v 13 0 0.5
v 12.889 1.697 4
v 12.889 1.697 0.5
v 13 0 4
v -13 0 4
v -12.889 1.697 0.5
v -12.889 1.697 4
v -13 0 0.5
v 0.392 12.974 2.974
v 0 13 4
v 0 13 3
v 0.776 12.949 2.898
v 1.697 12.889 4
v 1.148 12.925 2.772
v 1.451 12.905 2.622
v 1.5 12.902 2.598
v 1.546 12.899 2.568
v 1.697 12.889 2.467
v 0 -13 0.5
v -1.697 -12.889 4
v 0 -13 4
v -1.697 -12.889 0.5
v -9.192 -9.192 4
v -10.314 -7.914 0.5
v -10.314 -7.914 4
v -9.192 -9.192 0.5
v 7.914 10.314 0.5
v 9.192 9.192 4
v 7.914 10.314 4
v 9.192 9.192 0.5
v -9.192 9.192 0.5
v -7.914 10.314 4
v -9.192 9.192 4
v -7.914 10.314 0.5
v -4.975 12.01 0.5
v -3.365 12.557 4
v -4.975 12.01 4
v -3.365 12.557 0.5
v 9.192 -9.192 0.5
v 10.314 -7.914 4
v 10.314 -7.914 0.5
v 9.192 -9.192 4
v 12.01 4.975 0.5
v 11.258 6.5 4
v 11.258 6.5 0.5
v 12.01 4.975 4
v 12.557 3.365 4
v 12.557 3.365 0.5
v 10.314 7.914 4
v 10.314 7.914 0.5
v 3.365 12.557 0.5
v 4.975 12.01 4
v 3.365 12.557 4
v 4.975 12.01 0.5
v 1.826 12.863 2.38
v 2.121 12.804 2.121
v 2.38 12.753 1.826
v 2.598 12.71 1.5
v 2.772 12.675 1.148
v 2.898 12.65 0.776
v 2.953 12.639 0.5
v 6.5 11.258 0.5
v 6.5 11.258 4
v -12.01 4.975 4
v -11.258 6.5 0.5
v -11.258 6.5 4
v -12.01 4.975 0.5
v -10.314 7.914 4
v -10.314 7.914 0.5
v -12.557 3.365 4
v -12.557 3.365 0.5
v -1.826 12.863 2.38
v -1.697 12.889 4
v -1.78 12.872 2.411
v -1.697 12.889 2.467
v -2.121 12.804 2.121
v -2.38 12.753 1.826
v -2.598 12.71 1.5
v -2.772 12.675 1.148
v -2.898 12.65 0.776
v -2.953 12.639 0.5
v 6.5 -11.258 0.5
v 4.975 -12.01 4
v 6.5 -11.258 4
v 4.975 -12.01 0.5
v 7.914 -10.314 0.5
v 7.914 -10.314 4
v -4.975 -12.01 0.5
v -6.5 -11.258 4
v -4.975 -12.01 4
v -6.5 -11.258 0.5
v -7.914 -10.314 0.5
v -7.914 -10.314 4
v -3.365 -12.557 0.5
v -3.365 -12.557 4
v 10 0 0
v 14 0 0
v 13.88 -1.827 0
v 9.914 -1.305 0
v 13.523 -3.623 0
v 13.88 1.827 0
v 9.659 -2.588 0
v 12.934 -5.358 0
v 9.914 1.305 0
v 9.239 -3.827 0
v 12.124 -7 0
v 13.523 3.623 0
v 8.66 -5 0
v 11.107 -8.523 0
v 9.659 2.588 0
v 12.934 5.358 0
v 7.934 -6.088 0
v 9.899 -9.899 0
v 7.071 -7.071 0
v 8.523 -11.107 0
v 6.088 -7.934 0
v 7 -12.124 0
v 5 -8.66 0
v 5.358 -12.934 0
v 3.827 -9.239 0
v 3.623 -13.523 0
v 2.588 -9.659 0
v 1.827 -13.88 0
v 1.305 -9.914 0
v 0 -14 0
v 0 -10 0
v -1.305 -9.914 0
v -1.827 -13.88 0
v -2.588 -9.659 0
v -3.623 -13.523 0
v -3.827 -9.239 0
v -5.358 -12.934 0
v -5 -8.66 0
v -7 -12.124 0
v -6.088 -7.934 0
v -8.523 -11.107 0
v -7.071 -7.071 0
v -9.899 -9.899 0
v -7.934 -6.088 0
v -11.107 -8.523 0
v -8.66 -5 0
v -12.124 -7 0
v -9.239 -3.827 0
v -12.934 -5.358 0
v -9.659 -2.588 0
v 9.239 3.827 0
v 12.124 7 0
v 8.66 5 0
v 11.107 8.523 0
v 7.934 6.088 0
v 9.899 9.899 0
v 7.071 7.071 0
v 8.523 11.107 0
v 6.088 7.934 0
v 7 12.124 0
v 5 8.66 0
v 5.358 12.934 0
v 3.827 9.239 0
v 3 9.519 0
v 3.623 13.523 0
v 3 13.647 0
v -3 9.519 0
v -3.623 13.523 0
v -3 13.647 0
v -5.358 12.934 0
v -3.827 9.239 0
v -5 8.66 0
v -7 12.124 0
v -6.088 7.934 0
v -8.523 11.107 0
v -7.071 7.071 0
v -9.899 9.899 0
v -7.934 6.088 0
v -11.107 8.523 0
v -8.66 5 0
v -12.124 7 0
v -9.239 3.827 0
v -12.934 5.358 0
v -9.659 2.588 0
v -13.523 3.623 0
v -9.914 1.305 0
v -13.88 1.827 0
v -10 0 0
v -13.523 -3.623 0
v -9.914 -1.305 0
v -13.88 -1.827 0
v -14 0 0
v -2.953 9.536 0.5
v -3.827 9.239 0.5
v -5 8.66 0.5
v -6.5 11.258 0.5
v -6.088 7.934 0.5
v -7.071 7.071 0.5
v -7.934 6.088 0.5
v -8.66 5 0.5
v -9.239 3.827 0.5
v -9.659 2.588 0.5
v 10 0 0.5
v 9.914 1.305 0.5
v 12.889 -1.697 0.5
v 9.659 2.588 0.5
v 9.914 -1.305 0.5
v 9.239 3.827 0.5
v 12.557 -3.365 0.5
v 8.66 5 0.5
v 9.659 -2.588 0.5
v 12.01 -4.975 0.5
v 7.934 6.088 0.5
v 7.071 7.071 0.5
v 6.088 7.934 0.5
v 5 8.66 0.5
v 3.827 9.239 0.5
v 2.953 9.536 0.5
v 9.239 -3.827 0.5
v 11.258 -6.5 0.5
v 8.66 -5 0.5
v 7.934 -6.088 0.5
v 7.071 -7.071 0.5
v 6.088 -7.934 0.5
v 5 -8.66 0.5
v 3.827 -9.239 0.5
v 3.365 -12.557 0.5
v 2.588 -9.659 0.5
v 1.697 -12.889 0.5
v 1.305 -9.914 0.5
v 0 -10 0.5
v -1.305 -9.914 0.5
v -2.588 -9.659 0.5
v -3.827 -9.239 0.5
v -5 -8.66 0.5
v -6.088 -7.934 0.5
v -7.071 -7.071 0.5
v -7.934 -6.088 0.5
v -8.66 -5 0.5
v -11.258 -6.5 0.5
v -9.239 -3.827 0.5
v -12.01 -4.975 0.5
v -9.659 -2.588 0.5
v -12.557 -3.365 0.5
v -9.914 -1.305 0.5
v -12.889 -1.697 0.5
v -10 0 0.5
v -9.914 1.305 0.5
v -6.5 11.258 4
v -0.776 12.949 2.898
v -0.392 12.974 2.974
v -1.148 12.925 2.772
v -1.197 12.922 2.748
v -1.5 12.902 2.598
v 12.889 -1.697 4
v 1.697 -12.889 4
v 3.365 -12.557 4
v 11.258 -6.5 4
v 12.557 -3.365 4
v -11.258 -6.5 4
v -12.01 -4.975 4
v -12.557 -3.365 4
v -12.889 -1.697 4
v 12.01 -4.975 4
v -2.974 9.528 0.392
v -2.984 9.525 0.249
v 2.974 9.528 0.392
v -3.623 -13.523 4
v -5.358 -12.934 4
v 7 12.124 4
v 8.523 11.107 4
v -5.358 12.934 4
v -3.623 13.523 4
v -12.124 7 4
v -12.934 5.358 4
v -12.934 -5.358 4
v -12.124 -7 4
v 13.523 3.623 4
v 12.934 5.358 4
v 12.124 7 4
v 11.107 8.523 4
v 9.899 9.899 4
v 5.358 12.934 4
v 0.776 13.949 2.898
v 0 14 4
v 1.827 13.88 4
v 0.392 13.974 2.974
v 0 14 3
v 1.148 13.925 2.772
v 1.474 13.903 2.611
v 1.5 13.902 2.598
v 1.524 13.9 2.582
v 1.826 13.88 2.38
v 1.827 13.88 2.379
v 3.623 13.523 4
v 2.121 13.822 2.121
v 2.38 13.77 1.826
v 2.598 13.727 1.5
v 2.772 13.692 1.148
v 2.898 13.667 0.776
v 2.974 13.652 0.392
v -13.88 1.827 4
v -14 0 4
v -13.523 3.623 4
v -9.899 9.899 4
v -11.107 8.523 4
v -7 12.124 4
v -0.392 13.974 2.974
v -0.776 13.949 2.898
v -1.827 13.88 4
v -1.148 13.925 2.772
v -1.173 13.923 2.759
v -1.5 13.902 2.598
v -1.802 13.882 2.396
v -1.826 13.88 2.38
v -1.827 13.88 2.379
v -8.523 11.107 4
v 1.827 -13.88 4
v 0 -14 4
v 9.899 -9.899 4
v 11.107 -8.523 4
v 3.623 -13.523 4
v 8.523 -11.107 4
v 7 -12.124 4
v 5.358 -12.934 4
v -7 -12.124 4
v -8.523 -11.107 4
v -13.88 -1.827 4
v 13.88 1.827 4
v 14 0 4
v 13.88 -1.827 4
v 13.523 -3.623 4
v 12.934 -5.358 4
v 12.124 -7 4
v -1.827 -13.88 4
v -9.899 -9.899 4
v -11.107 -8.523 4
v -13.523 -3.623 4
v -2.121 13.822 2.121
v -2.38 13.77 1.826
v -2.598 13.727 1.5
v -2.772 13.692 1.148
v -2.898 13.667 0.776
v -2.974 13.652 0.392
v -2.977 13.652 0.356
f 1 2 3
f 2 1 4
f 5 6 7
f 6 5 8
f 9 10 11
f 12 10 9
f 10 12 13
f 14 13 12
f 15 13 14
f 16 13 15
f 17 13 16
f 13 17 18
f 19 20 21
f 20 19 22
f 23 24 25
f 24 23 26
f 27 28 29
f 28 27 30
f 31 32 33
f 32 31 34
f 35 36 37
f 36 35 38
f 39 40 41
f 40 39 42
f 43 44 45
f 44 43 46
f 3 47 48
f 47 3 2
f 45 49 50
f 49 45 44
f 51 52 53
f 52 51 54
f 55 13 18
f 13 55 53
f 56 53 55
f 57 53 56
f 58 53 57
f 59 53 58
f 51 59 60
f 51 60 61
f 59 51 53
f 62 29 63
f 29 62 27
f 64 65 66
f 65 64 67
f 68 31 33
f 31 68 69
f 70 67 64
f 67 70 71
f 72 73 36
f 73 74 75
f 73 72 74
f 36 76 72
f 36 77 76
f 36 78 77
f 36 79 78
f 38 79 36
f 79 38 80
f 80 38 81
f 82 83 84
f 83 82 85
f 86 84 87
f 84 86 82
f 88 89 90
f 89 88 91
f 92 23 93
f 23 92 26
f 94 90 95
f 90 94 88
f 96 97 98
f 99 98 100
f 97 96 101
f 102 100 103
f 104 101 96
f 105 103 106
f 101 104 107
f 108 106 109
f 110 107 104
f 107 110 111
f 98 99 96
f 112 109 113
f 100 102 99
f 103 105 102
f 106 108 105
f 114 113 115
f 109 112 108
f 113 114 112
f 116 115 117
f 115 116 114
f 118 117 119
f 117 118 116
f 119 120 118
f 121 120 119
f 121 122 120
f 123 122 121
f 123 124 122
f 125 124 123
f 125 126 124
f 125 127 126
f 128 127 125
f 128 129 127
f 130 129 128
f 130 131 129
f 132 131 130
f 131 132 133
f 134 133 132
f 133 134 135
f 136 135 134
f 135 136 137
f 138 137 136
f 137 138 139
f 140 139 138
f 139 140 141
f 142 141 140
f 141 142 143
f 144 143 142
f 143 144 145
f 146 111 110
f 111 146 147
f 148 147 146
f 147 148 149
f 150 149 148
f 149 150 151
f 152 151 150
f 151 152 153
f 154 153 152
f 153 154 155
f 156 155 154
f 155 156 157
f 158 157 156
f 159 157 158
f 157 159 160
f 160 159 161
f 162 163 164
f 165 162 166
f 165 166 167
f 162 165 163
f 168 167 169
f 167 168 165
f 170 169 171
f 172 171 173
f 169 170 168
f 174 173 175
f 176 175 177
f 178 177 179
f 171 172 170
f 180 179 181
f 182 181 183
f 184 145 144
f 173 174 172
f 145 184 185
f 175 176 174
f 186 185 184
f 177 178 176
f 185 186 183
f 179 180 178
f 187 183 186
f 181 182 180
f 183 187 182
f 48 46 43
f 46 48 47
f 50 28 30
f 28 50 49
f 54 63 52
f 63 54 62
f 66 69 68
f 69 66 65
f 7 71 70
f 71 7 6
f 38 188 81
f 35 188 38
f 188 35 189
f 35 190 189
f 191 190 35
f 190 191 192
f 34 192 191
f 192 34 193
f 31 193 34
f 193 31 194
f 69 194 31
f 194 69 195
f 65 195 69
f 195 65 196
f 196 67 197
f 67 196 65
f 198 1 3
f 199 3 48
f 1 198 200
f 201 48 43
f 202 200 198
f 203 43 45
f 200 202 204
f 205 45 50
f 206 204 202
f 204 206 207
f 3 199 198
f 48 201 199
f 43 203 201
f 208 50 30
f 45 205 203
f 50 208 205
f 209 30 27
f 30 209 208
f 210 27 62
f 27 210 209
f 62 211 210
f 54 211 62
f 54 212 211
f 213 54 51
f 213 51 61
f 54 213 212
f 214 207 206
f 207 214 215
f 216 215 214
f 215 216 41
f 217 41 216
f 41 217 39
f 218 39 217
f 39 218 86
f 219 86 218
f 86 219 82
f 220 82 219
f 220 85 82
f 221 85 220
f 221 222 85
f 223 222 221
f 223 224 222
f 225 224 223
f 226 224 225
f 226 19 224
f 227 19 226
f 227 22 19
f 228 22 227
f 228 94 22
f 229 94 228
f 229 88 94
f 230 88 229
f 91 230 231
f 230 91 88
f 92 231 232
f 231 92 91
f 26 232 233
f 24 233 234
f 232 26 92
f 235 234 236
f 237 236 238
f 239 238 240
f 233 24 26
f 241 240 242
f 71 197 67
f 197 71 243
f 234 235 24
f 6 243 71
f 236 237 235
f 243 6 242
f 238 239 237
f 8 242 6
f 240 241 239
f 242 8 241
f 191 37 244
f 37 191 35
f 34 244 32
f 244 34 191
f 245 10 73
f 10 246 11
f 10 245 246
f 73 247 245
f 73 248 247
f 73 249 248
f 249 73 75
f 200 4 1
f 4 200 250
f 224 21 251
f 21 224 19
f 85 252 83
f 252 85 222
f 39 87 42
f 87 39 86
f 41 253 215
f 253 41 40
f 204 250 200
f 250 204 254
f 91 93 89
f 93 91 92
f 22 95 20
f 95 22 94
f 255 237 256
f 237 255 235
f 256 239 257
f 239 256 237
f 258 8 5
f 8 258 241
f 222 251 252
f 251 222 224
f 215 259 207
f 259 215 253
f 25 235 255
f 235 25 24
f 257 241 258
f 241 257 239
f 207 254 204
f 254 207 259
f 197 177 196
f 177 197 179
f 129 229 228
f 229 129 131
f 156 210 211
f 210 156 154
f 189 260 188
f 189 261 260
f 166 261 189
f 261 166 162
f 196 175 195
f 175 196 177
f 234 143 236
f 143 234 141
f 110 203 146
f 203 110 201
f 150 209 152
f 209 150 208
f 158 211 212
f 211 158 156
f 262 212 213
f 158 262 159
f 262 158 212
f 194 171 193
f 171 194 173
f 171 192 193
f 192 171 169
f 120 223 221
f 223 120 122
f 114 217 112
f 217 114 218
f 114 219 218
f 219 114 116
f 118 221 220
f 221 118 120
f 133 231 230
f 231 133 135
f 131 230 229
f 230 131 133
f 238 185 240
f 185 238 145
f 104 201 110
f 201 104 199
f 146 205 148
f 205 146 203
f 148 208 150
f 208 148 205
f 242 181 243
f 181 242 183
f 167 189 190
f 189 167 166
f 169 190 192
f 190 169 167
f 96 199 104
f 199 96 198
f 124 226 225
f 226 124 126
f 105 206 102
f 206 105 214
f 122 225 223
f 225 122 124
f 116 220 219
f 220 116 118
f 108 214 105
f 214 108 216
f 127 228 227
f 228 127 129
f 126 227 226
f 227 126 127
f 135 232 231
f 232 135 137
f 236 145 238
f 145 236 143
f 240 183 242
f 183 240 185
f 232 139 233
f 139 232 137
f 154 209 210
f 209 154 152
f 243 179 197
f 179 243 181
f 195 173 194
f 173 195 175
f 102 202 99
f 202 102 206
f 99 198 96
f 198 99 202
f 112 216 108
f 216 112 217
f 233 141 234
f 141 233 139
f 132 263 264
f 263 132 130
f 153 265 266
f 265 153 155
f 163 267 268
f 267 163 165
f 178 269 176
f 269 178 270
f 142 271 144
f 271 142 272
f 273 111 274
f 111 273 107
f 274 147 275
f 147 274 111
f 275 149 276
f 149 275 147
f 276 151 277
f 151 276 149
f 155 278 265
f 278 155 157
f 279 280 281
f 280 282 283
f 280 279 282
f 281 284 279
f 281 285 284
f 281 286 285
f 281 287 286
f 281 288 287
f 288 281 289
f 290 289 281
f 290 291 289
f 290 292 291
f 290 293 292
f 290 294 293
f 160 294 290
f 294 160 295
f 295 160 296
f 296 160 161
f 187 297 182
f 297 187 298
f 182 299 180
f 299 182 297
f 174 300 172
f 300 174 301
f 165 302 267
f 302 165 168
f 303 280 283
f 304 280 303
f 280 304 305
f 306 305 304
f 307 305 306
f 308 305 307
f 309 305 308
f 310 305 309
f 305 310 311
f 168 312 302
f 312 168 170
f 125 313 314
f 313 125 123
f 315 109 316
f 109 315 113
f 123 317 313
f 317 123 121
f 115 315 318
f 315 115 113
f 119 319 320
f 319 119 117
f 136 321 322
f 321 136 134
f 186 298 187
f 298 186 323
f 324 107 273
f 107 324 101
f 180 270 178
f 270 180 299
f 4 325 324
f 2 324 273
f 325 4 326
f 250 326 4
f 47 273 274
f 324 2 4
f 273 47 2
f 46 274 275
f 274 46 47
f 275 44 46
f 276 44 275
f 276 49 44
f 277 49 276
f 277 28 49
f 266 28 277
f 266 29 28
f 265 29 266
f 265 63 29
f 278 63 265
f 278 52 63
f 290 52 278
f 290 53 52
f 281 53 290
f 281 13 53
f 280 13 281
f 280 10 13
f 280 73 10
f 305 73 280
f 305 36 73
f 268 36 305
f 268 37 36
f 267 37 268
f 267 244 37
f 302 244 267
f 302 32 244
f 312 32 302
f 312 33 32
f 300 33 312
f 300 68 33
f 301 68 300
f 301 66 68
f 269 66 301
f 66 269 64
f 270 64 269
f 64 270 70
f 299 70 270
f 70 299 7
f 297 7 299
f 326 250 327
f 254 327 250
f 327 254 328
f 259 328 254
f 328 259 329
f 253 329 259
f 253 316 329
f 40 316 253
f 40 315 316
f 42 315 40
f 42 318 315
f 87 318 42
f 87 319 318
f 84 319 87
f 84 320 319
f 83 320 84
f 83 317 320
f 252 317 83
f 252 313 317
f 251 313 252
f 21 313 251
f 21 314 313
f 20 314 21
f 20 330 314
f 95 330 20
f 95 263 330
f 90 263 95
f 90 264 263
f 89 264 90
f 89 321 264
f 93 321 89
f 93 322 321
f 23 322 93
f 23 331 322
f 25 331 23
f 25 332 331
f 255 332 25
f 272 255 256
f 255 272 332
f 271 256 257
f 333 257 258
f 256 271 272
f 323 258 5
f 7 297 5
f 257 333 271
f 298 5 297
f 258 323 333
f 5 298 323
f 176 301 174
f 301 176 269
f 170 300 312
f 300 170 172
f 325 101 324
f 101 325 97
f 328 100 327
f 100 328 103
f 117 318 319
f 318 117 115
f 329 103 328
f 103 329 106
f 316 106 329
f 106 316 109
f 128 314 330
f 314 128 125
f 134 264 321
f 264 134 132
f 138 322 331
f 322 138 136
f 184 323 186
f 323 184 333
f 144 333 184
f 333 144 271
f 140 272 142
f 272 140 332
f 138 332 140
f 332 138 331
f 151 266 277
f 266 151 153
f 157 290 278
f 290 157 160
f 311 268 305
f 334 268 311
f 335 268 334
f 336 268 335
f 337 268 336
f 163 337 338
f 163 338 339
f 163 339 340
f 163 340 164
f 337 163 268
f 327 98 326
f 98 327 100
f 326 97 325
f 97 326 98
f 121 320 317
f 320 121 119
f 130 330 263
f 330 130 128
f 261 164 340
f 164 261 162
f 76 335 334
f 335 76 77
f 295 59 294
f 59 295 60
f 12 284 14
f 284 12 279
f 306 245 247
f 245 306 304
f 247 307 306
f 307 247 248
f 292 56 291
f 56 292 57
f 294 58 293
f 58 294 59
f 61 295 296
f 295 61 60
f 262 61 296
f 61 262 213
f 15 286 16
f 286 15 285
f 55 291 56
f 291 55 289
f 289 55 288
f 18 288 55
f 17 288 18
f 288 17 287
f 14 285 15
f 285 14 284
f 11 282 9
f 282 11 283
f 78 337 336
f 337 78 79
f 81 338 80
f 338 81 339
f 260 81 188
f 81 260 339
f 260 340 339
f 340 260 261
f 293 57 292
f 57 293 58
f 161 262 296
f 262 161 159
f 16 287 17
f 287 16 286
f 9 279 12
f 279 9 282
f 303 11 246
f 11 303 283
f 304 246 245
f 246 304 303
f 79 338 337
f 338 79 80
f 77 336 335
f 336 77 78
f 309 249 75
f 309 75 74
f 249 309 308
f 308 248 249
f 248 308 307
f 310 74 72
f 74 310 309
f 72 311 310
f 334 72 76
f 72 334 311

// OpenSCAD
// file: ../build_environments.scad
// build_environments.scad: modules to build level sections
//

module pool(diameter=10.0, wall_height=2.0, step_width=3.0, connections=[])
{
    difference() {
        union() {
        difference() {
            cylinder(h=0.5,r1=diameter+step_width,r2=diameter+step_width,$fn=48);
            translate([0,0,-0.1])
                cylinder(h=0.7,r1=diameter,r2=diameter,$fn=48);
        }
        difference() {
            cylinder(h=wall_height,r1=diameter+step_width+1.0,r2=diameter+step_width+1.0,$fn=48);
            translate([0,0,-0.1])
                cylinder(h=wall_height+0.2,r1=diameter+step_width,r2=diameter+step_width,$fn=48);
        }
        }
    
        for (c = connections)
        {
            rotate([0,90,0]) {
                angle = atan2(c[1],c[0]);
                rotate([-angle,0,0]) {
                    cylinder(h=diameter+5.0,r1=c[2],r2=c[2],$fn=48);
                }
            }
        }
    }
}

module straight(length=10.0, width=2.0, dy1=0.0, dy2=0.0, dz=0.0)
{
    dims = [0, 0, 0, 0, 0, (dz/length)];
    matrix = [
        [ 1, dims[0], dims[1], 0 ],
        [ dims[2], 1, dims[4], 0 ],
        [ dims[5], dims[3], 1, 0 ],
        [ 0, 0, 0, 1 ]
    ];
    multmatrix(matrix)
    difference() {
        translate([dy1,0,0])
        union() {
            rotate([0,90,0]) {
                difference() {
                    cylinder(h=(length-dy1-dy2),r1=width+1.0,r2=width+1.0,$fn=24);
                    translate([0,0,-0.1])
                        cylinder(h=(length-dy1-dy2+0.2),r1=width,r2=width,$fn=24);
                }
                difference() {
                    cylinder(h=1.0,r1=width+2.0,r2=width+2.0,$fn=24);
                    translate([0,0,-0.1])
                        cylinder(h=1.2,r1=width,r2=width,$fn=24);
                }
                translate([0,0,(length-dy1-dy2)-1.0]) {
                    difference() {
                        cylinder(h=1.0,r1=width+2.0,r2=width+2.0,$fn=24);
                        translate([0,0,-0.1])
                            cylinder(h=1.2,r1=width,r2=width,$fn=24);
                    }
                }
            }
        }
        translate([0,0,-(2*width+4.0)/2])
            cube([3*length,3*length,2*width+4.0],center=true);
    }
}

module curve(p0=[0,0], center=[0,0], dir=1, angle=0.0, width=2.0)
{
    radius = sqrt((p0[0]-center[0])*(p0[0]-center[0]) + (p0[1]-center[1])*(p0[1]-center[1]));
    if (dir == 0) {
        difference() {
            rotate([0,0,-90])
            difference() {
                rotate_extrude(angle = angle, convexity = 10, $fn=32)
                    translate([radius, 0, 0])
                        circle(r = width+1.0,$fn=24);
                rotate([0,0,-1.0])
                    rotate_extrude(angle = angle+2.0, convexity = 10, $fn=32)
                        translate([radius, 0, 0])
                            circle(r = width,$fn=24);
            }
            translate([0,0,-(2*width+4.0)/2])
                cube([5*radius,5*radius,2*width+4.0],center=true);
        }
    }
    else {
        difference() {
            rotate([0,0,90])
            difference() {
                rotate_extrude(angle = -angle, convexity = 10, $fn=32)
                    translate([radius, 0, 0])
                        circle(r = width+1.0,$fn=24);
                rotate([0,0,1.0])
                    rotate_extrude(angle = -angle-2.0, convexity = 10, $fn=32)
                        translate([radius, 0, 0])
                            circle(r = width,$fn=24);
            }
            translate([0,0,-(2*width+4.0)/2])
                cube([5*radius,5*radius,2*width+4.0],center=true);
        }
    }

}

// test pool
//pool(diameter=12.0000, wall_height=3.0000, step_width=3.0000, connections=[[0.0000,-26.0000,2.0000], [23.6074,0.0000,2.0000]]);

// test straight, slope
//straight(length=26.0000, width=2.0000, dy1=11.8322, dy2=6.7082, dz=0.0000);
//straight(length=29.1549, width=12.0000, dy1=0.0000, dy2=0.0000, dz=-15.0000);

// test curve
//curve(p0=[23.6074, 0.0000], center=[23.6074, 5.0000], dir=0, angle=60.1011, width=2.0000);
//curve(p0=[33.6426, 12.4219], center=[37.9771, 9.9295], dir=1, angle=120.4627, width=2.0000);
// main file
use <../build_environments.scad>;
pool(diameter=10.0000, wall_height=4.0000, step_width=3.0000, connections=[[0.0000,40.0000,3.0000]]);
